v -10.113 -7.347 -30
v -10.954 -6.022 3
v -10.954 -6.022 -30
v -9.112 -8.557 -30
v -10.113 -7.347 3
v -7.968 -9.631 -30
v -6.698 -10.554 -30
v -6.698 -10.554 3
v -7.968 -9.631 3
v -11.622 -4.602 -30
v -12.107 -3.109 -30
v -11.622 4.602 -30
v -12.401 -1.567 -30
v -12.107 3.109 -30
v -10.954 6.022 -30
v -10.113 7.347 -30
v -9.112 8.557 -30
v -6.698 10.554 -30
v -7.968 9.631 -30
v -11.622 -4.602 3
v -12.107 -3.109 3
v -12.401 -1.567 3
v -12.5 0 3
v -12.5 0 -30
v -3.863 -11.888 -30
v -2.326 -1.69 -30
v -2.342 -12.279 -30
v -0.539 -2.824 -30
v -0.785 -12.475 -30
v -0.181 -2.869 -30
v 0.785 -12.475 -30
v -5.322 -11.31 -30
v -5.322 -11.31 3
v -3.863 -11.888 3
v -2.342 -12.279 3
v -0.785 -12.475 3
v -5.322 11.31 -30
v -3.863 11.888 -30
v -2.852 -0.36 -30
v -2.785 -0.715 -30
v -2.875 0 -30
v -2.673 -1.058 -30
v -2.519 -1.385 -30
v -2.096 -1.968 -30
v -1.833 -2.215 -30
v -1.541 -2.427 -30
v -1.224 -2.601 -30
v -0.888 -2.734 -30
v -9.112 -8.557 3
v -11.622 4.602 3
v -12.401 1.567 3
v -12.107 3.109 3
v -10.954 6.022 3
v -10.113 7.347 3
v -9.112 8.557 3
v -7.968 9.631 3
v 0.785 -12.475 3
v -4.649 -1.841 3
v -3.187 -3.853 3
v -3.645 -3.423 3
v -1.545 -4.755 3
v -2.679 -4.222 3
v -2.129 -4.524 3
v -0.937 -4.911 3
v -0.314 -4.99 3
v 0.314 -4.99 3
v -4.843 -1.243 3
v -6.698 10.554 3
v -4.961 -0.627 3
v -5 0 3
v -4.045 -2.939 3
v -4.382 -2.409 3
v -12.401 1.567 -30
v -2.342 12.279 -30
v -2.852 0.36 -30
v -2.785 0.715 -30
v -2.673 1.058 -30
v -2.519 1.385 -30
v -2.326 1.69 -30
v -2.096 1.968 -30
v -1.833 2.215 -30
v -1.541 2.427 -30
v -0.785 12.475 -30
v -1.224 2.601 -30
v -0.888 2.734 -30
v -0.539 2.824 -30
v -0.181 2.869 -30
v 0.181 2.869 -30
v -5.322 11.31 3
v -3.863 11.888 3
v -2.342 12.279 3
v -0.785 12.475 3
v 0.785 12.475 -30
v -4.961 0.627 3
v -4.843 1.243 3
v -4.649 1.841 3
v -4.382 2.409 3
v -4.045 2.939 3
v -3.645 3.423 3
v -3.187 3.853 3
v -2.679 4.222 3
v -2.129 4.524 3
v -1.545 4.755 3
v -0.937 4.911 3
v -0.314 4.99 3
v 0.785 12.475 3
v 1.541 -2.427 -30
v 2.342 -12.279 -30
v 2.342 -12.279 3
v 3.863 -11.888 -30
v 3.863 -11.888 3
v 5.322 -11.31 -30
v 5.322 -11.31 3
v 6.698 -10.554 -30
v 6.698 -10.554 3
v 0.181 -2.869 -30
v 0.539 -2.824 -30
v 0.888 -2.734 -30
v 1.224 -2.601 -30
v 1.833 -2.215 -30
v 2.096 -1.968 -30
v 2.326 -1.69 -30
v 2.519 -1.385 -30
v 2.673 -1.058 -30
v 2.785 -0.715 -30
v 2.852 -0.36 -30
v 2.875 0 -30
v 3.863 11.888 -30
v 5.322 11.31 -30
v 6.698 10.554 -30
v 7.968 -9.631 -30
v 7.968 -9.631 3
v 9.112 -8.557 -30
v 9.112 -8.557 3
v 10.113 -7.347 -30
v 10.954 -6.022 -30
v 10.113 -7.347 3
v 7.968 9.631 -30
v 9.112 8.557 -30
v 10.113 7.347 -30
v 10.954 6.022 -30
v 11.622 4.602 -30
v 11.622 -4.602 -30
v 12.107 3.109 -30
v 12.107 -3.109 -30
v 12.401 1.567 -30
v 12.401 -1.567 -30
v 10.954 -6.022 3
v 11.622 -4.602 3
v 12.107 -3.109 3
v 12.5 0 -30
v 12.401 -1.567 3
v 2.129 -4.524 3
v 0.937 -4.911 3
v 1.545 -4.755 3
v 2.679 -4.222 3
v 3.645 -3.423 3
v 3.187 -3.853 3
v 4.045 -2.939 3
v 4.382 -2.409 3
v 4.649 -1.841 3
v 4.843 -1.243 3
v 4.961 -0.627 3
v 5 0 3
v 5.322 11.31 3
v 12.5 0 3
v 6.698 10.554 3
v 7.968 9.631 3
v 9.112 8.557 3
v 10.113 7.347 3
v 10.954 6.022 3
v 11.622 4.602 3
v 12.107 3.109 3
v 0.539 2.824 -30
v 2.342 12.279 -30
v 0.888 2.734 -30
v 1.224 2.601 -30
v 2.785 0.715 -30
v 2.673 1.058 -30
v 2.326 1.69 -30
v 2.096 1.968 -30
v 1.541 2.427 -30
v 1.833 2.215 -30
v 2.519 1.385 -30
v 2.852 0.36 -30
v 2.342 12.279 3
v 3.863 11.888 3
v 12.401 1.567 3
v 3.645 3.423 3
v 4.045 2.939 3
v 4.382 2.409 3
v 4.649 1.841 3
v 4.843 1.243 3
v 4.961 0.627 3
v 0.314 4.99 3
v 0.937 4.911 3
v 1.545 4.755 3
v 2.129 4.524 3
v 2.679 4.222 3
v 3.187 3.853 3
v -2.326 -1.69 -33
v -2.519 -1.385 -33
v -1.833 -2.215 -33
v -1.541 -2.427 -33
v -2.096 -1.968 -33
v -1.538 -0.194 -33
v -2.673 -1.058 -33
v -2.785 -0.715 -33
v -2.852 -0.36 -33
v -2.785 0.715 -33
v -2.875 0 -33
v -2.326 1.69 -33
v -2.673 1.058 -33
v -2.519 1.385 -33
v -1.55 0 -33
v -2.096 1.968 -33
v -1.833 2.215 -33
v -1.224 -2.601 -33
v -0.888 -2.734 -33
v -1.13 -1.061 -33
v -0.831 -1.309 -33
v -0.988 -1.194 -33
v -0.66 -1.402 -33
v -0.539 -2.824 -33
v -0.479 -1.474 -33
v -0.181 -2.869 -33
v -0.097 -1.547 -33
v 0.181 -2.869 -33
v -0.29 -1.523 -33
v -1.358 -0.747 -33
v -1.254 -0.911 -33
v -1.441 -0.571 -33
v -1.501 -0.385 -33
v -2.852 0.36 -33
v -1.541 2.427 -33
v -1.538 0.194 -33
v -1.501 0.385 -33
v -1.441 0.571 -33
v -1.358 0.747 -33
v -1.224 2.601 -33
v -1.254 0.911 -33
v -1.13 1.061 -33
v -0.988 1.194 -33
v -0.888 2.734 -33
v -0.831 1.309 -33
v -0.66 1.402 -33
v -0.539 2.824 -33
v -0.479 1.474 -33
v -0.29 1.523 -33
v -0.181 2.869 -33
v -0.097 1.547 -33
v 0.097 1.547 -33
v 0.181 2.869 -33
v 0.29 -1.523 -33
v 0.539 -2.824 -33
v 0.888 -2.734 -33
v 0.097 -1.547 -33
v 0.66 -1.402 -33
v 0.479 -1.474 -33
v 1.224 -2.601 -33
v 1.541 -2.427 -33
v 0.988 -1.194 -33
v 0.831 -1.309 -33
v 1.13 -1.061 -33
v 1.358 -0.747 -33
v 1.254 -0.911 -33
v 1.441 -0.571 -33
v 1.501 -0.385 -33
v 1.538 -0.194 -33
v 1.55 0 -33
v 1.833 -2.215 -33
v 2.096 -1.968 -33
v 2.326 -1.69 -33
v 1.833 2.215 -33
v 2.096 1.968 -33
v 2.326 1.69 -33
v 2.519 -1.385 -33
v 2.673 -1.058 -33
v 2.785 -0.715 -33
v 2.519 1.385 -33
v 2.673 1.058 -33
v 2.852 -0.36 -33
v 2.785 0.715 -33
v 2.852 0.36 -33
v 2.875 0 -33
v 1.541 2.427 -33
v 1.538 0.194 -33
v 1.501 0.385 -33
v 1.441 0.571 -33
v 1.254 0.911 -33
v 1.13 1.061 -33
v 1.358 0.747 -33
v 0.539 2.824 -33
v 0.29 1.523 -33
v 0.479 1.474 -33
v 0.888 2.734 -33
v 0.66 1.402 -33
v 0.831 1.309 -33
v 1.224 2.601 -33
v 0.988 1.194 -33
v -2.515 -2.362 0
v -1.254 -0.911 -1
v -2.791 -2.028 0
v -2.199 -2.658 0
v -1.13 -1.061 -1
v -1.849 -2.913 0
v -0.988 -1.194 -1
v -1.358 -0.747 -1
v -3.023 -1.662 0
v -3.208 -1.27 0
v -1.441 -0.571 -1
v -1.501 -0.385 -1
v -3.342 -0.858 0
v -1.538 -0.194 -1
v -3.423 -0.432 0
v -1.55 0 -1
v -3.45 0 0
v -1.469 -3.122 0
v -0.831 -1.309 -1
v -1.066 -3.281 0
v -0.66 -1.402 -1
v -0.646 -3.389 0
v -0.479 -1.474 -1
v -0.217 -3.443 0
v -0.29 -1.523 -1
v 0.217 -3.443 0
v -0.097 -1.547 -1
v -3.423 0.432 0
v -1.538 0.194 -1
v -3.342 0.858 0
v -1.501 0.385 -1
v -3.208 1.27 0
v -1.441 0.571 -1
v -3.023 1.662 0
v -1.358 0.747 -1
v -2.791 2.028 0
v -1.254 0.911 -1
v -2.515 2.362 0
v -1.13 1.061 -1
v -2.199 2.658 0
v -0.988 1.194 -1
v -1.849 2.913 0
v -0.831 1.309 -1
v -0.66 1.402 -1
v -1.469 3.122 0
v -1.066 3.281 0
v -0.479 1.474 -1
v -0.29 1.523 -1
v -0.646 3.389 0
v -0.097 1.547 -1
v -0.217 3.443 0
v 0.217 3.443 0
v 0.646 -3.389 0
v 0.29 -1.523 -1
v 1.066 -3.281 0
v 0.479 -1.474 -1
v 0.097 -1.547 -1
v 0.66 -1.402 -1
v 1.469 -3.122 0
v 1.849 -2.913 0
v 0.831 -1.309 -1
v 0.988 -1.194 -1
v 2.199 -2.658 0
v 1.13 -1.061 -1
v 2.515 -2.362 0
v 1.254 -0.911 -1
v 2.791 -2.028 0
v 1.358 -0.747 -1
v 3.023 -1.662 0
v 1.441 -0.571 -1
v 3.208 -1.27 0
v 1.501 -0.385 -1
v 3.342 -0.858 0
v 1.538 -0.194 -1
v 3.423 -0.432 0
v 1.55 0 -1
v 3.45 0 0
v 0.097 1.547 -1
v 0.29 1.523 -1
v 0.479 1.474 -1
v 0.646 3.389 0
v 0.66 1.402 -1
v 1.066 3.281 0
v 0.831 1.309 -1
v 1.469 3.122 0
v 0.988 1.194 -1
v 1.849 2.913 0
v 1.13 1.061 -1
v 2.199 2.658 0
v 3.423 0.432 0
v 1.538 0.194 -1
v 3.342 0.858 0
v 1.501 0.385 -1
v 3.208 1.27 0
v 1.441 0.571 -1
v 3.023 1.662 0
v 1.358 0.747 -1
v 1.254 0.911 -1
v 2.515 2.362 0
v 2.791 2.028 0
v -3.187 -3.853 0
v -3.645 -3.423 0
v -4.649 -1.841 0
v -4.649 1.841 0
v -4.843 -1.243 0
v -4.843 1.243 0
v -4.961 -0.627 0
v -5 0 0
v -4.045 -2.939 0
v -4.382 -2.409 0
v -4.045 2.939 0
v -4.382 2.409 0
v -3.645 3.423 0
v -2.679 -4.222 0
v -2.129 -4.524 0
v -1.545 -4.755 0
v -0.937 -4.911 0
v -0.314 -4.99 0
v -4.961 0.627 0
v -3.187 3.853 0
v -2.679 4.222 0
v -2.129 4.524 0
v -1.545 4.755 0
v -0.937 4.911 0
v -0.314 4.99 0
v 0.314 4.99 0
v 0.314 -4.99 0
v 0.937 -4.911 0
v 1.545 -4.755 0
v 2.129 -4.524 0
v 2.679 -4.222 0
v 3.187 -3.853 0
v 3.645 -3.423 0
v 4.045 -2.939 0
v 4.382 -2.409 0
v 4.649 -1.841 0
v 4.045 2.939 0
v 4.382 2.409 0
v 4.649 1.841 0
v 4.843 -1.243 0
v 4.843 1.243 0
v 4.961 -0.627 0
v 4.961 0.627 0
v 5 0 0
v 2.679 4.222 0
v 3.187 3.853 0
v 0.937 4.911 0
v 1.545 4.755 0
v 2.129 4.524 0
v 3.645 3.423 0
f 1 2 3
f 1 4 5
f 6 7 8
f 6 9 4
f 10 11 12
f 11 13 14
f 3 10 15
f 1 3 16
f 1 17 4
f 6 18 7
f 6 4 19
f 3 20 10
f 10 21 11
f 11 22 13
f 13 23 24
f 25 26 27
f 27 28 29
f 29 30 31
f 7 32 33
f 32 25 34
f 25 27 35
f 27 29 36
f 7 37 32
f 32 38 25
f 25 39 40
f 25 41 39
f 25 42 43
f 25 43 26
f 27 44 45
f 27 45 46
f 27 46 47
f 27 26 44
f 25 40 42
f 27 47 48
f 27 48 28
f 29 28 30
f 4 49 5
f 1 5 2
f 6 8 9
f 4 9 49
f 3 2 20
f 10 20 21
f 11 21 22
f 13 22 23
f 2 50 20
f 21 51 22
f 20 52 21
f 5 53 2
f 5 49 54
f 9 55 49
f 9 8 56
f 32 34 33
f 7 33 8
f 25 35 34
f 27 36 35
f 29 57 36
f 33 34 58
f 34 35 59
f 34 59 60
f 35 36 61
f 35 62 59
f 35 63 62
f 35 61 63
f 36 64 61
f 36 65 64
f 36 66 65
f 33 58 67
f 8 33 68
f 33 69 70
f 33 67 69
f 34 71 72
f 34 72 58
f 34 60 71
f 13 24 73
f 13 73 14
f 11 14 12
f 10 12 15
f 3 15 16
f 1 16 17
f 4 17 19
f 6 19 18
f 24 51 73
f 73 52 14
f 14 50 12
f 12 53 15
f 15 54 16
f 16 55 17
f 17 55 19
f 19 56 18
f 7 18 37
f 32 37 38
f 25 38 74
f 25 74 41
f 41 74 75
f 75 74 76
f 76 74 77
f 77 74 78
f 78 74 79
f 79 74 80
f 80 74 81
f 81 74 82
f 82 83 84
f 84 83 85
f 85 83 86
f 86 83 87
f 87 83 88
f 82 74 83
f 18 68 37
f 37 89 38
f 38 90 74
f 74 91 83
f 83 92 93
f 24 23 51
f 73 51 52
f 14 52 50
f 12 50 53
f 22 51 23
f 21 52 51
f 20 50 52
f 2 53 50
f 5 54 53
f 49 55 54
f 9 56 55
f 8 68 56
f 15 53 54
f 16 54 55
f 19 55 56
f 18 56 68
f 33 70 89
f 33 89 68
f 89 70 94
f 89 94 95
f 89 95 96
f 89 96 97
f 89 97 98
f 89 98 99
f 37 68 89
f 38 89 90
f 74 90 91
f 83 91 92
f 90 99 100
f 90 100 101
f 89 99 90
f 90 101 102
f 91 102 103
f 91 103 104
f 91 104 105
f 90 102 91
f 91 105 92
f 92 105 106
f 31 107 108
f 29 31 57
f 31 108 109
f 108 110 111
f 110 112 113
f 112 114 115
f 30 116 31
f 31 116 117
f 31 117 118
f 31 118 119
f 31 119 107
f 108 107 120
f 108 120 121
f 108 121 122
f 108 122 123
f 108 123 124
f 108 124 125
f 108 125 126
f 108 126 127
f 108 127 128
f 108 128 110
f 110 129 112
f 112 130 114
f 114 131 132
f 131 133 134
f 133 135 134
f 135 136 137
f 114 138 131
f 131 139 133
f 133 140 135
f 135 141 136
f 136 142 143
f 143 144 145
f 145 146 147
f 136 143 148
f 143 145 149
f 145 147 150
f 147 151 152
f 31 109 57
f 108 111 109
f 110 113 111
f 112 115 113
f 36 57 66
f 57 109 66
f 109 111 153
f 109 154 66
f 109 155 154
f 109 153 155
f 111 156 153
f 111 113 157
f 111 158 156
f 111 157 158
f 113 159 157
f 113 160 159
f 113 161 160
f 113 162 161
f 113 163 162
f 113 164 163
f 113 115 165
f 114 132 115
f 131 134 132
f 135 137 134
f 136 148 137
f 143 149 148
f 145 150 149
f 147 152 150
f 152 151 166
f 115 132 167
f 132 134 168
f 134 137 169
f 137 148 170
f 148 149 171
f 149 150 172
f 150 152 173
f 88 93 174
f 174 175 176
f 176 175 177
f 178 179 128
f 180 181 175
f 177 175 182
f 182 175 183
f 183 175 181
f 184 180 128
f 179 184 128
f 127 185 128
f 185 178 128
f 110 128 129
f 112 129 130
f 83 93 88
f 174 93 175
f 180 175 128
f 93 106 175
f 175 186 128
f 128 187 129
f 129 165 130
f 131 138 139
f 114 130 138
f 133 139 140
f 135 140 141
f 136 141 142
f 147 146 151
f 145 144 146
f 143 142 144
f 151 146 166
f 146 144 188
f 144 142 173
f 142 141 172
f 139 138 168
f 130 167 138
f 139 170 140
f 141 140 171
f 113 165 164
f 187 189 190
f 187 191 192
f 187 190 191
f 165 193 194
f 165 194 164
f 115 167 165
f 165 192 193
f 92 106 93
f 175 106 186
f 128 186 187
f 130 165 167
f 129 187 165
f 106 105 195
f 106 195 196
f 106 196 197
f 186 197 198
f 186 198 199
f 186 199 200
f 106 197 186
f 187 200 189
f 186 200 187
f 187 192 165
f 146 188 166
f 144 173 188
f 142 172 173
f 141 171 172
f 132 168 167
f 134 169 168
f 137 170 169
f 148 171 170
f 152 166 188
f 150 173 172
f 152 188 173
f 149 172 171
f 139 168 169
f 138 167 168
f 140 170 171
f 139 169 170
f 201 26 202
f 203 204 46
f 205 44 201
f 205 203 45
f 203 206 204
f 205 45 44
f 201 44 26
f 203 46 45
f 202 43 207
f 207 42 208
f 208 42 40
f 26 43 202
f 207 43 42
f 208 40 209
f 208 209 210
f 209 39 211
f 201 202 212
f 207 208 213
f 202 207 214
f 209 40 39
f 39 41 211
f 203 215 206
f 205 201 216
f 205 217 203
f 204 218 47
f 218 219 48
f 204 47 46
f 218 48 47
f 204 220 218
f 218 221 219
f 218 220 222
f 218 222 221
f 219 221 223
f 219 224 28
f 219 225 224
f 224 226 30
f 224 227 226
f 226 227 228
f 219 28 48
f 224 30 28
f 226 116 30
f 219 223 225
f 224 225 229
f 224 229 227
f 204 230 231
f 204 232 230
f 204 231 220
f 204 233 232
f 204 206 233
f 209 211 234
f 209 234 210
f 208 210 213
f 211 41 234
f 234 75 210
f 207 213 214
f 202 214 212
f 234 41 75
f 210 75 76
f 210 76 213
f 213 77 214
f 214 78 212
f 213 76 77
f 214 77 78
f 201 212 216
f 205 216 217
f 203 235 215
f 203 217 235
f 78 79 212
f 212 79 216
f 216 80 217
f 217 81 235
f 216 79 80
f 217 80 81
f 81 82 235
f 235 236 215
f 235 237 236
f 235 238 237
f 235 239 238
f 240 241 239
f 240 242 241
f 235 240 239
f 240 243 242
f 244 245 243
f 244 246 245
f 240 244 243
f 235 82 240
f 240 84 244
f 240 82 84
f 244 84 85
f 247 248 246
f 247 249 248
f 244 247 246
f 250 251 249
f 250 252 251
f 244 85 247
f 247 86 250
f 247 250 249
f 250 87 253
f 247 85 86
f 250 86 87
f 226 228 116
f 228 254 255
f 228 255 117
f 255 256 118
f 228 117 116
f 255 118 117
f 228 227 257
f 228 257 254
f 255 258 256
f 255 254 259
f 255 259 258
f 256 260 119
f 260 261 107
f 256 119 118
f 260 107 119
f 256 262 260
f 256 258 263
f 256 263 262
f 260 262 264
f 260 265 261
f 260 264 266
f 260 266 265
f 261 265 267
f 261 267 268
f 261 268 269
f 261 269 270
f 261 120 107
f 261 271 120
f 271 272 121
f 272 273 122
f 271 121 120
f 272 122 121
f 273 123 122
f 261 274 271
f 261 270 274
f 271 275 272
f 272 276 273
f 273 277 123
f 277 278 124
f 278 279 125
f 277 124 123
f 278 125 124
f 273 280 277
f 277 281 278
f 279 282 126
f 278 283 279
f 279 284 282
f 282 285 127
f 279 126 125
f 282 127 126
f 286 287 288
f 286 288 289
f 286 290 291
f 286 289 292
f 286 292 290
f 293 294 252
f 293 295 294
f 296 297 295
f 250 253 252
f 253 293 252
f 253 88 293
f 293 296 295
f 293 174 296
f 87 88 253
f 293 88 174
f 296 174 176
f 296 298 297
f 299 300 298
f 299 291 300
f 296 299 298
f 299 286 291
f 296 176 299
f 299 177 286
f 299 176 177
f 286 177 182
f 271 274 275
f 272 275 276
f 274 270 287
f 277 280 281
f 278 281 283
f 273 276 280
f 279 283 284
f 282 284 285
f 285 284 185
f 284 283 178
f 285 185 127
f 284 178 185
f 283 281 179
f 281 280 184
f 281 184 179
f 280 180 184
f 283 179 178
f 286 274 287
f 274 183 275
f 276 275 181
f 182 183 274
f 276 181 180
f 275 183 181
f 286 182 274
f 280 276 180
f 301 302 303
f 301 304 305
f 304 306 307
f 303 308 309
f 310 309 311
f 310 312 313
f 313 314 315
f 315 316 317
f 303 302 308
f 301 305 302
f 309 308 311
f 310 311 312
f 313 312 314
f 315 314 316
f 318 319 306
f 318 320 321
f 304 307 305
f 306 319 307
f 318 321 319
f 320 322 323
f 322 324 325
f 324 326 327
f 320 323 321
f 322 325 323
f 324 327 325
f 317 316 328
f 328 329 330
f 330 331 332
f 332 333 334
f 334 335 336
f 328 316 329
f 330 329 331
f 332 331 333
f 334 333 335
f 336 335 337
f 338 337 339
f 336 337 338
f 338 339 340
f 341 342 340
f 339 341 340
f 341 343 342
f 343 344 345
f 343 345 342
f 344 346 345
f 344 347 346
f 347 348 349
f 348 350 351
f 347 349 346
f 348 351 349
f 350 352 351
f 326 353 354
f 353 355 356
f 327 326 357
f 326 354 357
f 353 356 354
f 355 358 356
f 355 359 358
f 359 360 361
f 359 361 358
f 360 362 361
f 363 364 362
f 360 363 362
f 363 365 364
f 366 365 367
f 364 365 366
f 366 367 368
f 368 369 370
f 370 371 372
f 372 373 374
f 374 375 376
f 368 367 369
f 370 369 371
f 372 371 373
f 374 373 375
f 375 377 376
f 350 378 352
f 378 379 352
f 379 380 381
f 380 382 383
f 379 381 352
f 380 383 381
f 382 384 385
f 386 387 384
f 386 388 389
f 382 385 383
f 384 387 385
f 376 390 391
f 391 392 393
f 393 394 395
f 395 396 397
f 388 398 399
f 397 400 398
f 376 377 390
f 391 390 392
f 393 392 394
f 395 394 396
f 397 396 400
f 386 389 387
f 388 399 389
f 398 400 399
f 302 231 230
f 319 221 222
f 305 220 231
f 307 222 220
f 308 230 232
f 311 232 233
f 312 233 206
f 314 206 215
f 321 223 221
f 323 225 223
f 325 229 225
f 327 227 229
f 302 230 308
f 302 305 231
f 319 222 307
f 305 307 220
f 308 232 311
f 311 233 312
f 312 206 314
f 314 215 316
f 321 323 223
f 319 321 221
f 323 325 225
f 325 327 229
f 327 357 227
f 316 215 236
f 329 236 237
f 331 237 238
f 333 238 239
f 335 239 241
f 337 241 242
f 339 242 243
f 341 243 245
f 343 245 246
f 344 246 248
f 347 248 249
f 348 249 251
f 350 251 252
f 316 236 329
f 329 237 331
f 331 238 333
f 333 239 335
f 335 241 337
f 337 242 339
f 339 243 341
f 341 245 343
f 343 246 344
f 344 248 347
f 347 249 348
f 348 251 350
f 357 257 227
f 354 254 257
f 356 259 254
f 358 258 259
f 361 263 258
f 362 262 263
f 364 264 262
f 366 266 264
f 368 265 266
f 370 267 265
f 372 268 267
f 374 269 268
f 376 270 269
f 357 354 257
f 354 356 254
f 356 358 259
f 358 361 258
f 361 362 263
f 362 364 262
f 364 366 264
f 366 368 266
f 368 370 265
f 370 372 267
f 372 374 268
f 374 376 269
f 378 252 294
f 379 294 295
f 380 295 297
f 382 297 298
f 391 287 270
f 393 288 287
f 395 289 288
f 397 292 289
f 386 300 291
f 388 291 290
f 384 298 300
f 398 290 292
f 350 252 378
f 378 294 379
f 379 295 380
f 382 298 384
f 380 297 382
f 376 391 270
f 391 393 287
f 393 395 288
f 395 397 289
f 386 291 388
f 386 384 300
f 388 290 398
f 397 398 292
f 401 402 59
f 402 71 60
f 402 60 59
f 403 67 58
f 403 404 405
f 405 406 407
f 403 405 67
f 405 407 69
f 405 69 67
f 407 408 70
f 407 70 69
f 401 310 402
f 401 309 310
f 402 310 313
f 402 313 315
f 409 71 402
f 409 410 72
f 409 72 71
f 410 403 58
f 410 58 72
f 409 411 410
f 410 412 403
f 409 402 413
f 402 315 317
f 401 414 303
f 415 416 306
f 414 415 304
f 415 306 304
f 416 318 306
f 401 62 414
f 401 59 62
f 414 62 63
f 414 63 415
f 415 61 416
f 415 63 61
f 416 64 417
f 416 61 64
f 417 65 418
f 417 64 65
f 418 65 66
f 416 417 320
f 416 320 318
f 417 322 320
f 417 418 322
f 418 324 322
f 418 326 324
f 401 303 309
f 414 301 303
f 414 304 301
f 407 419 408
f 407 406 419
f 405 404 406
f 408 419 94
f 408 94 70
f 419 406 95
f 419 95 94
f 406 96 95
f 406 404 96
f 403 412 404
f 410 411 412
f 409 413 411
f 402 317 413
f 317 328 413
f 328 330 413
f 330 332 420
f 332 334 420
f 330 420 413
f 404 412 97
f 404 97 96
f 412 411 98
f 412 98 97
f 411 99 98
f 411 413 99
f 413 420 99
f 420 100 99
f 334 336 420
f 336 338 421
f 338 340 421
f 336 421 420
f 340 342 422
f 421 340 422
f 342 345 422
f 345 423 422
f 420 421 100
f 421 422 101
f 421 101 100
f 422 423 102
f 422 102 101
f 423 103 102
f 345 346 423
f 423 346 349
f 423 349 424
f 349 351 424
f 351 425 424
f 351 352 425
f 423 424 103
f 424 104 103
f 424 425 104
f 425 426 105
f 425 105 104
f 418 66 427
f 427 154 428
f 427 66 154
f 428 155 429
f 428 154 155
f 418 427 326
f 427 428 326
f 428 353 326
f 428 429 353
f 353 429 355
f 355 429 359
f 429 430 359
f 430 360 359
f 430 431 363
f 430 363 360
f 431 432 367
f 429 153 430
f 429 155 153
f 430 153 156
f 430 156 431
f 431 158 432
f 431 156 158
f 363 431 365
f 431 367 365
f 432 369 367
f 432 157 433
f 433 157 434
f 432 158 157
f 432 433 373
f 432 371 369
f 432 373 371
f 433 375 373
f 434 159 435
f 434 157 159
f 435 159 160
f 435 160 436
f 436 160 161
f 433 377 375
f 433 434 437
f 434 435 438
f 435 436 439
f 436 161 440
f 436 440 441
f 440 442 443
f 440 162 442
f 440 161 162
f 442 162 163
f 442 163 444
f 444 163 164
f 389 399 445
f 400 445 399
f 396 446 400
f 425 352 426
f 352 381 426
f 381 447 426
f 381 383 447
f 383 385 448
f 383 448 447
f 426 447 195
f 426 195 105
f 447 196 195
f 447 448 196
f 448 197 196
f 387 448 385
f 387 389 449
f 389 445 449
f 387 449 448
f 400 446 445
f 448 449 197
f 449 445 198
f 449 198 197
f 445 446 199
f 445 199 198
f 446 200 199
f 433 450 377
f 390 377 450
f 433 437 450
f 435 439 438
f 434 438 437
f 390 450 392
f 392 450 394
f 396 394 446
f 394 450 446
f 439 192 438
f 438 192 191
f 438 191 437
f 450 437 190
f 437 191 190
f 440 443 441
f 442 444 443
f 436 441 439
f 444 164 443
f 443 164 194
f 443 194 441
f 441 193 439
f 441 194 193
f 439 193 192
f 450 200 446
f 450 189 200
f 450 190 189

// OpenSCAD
$fn = 50;


difference() {
	union() {
		translate(v = [0, 0, -30.0000000000]) {
			cylinder(h = 33, r = 12.5000000000);
		}
		#translate(v = [0, 0, -33.0000000000]) {
			cylinder(h = 33, r = 2.8750000000);
		}
	}
	union() {
		translate(v = [0, 0, 0]) {
			rotate(a = [0, 0, 0]) {
				difference() {
					union() {
						translate(v = [0, 0, -33.0000000000]) {
							cylinder(h = 33, r = 1.2500000000);
						}
						translate(v = [0, 0, -1.0000000000]) {
							cylinder(h = 1.0000000000, r1 = 1.5500000000, r2 = 3.4500000000);
						}
						translate(v = [0, 0, -33.0000000000]) {
							cylinder(h = 33, r = 1.5500000000);
						}
						translate(v = [0, 0, -33.0000000000]) {
							cylinder(h = 33, r = 1.2500000000);
						}
					}
					union();
				}
			}
		}
		#cylinder(h = 3, r = 5.0000000000);
	}
}
